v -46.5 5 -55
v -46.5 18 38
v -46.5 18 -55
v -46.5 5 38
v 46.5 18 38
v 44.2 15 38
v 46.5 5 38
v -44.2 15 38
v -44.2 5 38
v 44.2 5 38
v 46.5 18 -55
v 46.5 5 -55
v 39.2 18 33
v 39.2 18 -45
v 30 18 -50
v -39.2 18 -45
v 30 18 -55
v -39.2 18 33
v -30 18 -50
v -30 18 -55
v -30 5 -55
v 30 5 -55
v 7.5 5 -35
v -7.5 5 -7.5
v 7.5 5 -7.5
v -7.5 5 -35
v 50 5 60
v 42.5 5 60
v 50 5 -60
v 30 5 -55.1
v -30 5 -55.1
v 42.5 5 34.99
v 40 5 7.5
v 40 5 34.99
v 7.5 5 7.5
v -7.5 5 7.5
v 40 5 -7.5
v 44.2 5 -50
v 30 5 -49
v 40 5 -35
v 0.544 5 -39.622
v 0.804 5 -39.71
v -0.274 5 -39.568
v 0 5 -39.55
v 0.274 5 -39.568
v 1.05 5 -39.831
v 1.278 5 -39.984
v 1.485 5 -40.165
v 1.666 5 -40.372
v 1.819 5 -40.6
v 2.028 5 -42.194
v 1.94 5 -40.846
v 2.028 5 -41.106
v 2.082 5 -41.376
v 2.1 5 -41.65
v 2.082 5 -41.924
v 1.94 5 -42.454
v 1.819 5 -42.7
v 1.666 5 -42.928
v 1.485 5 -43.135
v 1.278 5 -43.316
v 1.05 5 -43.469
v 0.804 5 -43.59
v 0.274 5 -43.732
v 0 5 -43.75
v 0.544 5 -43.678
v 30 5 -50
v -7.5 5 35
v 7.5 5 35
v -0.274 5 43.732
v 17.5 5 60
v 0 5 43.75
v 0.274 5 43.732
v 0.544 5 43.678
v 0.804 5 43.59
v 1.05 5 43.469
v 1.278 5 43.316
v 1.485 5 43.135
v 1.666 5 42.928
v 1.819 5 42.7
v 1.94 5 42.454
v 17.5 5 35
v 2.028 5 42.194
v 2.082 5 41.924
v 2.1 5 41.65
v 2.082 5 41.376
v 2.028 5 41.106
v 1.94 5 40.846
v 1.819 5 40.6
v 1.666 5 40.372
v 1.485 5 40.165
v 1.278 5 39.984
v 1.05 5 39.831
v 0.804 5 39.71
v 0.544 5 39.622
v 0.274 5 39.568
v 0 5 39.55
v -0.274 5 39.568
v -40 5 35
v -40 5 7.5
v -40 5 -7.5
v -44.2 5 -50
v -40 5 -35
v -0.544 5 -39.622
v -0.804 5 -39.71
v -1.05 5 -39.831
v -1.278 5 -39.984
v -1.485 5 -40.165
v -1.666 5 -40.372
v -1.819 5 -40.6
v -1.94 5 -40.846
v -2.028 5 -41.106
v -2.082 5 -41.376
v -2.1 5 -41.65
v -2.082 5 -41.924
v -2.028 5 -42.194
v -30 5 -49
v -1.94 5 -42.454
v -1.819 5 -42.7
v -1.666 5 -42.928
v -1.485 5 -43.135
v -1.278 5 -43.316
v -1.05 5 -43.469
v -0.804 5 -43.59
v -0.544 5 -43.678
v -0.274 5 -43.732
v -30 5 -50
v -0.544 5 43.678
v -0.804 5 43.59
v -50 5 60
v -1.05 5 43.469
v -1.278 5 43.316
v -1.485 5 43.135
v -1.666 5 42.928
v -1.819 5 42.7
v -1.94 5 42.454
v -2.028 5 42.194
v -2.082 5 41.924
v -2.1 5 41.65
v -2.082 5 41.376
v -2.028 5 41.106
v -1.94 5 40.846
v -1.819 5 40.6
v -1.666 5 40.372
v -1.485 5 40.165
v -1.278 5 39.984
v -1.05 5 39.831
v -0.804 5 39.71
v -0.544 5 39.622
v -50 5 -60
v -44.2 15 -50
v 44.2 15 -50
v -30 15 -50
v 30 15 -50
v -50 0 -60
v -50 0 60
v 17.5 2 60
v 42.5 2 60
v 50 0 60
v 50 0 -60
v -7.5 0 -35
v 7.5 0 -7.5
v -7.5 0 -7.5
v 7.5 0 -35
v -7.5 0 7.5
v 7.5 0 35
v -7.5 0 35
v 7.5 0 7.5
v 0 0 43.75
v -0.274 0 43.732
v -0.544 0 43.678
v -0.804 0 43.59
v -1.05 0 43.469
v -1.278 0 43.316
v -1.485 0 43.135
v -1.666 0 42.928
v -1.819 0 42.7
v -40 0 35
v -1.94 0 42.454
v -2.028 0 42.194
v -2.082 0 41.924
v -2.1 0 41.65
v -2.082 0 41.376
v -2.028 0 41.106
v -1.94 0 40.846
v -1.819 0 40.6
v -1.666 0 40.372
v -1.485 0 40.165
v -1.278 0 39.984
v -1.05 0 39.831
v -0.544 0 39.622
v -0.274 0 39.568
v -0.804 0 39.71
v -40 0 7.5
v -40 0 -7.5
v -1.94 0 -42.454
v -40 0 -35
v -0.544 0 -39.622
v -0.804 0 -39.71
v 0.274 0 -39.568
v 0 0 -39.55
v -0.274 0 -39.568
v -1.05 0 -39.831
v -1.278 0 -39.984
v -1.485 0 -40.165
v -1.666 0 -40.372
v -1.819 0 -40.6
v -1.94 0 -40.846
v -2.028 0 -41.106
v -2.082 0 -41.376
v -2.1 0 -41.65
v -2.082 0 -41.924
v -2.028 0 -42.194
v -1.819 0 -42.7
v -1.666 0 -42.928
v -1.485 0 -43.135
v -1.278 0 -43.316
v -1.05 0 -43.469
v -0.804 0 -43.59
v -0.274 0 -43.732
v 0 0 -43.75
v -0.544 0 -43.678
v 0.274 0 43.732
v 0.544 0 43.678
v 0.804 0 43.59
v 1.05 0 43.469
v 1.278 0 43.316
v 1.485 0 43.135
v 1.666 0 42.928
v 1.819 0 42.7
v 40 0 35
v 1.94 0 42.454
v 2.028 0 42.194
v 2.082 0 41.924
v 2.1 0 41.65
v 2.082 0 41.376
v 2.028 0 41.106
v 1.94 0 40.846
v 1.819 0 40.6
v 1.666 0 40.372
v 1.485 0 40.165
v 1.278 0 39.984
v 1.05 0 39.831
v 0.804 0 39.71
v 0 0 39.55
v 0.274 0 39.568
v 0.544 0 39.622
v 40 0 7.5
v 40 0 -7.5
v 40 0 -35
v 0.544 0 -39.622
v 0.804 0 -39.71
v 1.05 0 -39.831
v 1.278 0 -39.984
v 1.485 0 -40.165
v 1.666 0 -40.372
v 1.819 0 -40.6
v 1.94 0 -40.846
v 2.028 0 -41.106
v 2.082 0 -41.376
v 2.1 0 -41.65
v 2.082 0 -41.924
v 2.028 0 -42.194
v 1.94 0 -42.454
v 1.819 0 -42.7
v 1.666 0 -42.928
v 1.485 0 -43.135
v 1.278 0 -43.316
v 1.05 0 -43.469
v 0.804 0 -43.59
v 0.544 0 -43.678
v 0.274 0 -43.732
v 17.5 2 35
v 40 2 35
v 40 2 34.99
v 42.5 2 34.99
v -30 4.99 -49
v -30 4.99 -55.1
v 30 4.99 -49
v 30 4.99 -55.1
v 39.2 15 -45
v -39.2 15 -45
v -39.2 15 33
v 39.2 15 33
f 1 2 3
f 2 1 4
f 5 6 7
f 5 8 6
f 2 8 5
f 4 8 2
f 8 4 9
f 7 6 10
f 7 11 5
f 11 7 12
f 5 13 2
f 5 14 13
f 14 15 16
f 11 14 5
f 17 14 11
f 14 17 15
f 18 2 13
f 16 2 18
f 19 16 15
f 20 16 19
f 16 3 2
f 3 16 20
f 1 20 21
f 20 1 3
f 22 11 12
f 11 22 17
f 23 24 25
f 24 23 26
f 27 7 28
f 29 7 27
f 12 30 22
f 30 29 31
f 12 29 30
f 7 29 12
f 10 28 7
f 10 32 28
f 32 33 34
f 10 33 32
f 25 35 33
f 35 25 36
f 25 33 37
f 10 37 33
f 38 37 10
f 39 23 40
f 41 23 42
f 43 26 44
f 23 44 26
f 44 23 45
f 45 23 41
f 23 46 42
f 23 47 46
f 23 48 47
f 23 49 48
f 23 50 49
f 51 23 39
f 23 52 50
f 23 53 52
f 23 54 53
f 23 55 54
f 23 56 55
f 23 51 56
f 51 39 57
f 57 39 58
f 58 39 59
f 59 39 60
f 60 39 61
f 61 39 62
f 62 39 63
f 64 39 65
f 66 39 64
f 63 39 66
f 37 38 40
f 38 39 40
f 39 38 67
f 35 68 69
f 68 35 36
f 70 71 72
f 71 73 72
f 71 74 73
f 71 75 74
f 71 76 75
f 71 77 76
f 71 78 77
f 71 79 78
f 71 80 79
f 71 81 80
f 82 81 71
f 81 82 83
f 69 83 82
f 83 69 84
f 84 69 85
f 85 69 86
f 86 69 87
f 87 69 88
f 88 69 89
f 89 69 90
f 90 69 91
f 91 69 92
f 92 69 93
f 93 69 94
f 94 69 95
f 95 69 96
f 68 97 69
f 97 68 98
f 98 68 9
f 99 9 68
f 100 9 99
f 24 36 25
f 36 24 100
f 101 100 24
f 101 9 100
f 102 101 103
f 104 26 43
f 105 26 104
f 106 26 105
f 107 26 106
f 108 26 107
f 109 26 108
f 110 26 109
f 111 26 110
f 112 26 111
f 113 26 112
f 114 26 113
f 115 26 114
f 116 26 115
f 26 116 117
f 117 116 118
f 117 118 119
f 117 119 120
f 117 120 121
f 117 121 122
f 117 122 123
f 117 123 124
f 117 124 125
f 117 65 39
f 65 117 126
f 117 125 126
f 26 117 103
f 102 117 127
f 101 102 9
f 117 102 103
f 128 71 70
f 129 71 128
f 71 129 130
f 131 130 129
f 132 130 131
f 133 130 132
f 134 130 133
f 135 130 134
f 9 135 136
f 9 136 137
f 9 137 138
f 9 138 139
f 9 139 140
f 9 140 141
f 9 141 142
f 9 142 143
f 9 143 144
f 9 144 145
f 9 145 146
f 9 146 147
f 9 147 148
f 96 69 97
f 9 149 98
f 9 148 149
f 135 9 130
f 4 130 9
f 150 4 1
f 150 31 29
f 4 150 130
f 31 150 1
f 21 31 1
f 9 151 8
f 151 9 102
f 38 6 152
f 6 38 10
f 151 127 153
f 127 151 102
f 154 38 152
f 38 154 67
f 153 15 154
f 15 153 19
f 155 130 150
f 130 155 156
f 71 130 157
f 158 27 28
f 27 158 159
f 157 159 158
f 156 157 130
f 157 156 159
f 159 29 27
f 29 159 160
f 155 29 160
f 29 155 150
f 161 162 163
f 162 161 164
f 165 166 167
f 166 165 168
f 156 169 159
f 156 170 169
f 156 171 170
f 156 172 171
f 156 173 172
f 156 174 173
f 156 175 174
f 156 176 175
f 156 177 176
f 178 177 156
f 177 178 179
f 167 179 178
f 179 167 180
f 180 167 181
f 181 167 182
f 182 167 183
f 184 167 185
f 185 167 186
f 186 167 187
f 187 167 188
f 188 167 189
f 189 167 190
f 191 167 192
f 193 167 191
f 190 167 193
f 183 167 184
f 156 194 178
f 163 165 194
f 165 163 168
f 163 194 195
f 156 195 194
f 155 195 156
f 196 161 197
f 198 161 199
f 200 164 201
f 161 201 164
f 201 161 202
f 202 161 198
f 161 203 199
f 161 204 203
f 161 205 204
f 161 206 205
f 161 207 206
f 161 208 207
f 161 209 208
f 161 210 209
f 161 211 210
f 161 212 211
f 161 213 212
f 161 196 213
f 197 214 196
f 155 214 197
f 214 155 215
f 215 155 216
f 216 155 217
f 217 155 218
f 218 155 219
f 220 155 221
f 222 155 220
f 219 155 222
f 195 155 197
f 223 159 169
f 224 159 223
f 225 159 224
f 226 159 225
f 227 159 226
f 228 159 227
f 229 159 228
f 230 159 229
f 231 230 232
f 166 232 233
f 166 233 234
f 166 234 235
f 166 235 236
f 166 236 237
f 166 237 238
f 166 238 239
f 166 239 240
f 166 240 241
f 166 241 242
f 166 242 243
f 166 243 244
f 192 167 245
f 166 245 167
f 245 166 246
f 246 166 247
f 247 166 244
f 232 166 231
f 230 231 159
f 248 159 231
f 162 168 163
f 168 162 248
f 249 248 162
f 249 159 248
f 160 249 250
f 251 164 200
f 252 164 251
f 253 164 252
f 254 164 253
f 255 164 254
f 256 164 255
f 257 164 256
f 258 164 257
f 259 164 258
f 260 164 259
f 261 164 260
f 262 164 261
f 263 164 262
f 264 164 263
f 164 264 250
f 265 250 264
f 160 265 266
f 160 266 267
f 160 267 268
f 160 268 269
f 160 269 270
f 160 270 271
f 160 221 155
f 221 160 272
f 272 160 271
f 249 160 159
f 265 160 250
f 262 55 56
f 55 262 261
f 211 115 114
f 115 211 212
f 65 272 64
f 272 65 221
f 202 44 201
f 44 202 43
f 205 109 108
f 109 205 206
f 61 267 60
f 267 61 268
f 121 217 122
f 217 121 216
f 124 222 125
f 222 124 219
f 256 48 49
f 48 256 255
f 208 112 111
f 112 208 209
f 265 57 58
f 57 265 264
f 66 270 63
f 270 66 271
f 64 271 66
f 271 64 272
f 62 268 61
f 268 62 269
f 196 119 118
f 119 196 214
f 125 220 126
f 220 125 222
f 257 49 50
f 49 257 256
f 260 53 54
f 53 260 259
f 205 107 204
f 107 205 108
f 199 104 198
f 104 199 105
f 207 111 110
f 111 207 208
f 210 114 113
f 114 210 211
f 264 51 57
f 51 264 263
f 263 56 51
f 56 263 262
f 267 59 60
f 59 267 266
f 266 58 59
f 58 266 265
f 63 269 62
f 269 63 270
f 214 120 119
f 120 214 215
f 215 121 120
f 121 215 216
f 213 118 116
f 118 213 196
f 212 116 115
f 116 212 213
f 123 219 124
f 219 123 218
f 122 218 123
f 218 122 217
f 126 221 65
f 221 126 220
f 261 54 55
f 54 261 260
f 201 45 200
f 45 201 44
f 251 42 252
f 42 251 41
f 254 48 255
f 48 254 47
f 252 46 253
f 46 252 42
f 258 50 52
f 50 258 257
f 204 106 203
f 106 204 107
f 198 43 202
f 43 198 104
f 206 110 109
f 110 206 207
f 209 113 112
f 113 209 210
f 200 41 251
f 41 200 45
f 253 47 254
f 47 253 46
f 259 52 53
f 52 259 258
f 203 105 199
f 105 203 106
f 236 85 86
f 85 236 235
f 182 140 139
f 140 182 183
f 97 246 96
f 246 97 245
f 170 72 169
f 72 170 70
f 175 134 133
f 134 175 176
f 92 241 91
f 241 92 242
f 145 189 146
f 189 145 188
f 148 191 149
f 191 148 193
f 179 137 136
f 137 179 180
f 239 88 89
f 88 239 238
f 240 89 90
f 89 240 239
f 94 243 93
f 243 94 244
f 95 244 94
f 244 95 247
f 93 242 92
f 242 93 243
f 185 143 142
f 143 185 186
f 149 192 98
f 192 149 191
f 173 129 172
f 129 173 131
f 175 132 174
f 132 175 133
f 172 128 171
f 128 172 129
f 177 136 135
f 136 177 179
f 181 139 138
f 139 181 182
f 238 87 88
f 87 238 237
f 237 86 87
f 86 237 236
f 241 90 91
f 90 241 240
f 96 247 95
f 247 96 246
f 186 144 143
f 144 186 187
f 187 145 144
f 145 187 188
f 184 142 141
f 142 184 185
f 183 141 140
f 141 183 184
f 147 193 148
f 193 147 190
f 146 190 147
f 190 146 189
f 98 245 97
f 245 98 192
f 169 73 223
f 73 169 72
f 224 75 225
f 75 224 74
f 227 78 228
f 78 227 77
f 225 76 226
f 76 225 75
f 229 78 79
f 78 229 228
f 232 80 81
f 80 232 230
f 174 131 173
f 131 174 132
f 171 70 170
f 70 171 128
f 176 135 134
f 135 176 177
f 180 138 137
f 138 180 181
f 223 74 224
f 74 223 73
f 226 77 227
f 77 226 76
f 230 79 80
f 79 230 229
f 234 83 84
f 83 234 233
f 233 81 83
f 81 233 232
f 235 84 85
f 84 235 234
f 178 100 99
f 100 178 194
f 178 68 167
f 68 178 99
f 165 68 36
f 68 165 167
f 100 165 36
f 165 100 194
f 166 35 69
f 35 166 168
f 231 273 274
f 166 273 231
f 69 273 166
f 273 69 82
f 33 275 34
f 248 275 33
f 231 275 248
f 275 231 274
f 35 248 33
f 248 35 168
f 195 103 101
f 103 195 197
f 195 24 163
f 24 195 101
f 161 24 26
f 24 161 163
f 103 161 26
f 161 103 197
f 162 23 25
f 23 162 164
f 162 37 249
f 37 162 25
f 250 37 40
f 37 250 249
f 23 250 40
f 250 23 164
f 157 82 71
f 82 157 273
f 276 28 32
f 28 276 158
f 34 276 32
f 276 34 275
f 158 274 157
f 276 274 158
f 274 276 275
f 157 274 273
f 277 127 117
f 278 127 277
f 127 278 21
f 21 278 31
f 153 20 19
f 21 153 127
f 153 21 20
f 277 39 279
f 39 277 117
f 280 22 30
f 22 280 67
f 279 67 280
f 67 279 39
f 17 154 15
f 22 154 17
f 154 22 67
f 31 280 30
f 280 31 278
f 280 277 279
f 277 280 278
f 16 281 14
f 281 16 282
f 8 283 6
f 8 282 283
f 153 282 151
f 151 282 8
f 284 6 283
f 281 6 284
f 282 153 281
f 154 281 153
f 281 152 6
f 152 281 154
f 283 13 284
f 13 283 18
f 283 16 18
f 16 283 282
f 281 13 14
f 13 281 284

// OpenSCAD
// =============================================================
// Wall-plate + slide-in cradle for Guition ESP32-S3-4848S040
// -------------------------------------------------------------
// Single printed part:
//   - 100 x 120 wall plate, mounts to a US single-gang box
//     via 2 screws at 83.3 mm vertical spacing (gang box at the
//     plate's vertical center; extra height is above the cradle).
//   - 93 x 93 cradle rising 13 mm forward, aligned with the BOTTOM
//     edge of the plate (plate extends upward above the cradle).
//     Cavity 88 x 88 x 13. Front has a 4-sided 5 mm retention frame
//     (bottom + top bars, left/right posts) that drops into the
//     device's 5 mm front notch. Device installs by tilting it in
//     from the front.
//   - 50 x 60 wire passthrough straight through the plate center.
//
// Material: PETG. 0.2 mm layer, 30% infill, 4 perimeters.
// Orient:   wall plate flat on the bed, cradle rising up.
// =============================================================

// ---------- DEVICE ----------
device_w       = 88;
device_h       = 88;
device_d       = 13;
clearance      = 0.4;

// ---------- WALL PLATE ----------
plate_w        = 100;
plate_h        = 120;
plate_t        = 5;

// ---------- CRADLE ----------
cradle_outer_w = 93;
cradle_outer_h = 93;
cradle_depth   = 13;
wall_bottom_t  = 5;   // bottom lip the device rests on

// ---------- FRONT RETENTION LIP ----------
// The device has a 5 mm-wide notch around its entire front perimeter.
// The cradle has a matching 5 mm-wide frame on all 4 sides (bottom,
// top, left, right) that drops into that notch.
front_lip_w    = 5;   // inward projection (matches 5 mm notch width)
front_lip_t    = 3;   // Y thickness at the front face

// ---------- WIRE PASSTHROUGH (through the plate) ----------
wire_hole_w    = 80;
wire_hole_h    = 70;

// ---------- GANG-BOX SCREWS ----------
box_hole_spacing = 83.3;
box_hole_d       = 4.2;  // #6-32 clearance

// ---------- 8-PIN CONNECTOR SLIDE-IN CHANNEL ----------
// Vertical groove on the cradle-facing side of the wall plate so the
// device's 3 mm-raised 8-pin header can slide down from the top into
// its seated position. Runs from above the wire hole up through the
// top edge of the plate. Adjust conn_chan_x to match the connector.
conn_chan_w      = 25;   // X width of the channel
conn_chan_depth  = 3;    // Y recess into plate (matches header height)
conn_chan_x      = 30;   // X center (upper-RIGHT front view = X > 0)

// ---------- BOTTOM SLOT (USB-C + SD card) ----------
// Wide opening through the cradle's bottom lip so the USB-C port and
// microSD slot on the device's bottom edge are reachable. Cuts the full
// Y depth and full Z thickness of the lip; the device still rests on
// the remaining lip on each side of the slot.
bottom_slot_w    = 60;

// ---------- CENTER SPINES ----------
// 15 mm-wide uncut strips of plate material forming a cross through
// the wire passthrough: one vertical (aligned with the screw
// centerline), one horizontal. Not separate ribs — they are the
// portions of the plate the wire hole does NOT cut away. The wire
// passthrough is split into four quadrants around them.
spine_w          = 15;

$fn = 48;

// ---------- DERIVED ----------
cavity_w = device_w + clearance;
cavity_h = device_h + clearance;

// Z offset for the cradle relative to the plate. Starts from the
// cradle's outer bottom aligned with the plate's outer bottom, then
// shifted up 5 mm so the cradle sits slightly above the plate's
// bottom edge. For plate_h = 120 and cradle_outer_h = 93, this is
// -13.5 + 5 = -8.5 mm.
cradle_lift = 5;
cradle_z    = -(plate_h - cradle_outer_h) / 2 + cradle_lift;

// ---------- BUILD ----------

union() {
    // Plate + hollow cradle shell, with all plate-side subtractions.
    // The retention lip is added AFTER this block so the bottom slot
    // can extend generously in Y and Z without creating coincident
    // planes with the lip.
    difference() {
        union() {
            // Wall plate
            translate([-plate_w/2, 0, -plate_h/2])
                cube([plate_w, plate_t, plate_h]);

            // Cradle: hollow shell (open top + open front).
            difference() {
                translate([-cradle_outer_w/2, plate_t, cradle_z - cradle_outer_h/2])
                    cube([cradle_outer_w, cradle_depth, cradle_outer_h]);

                // Full cavity: open top, open front
                translate([-cavity_w/2,
                           plate_t - 0.01,
                           cradle_z - cradle_outer_h/2 + wall_bottom_t])
                    cube([cavity_w,
                          cradle_depth + 0.02,
                          cavity_h + 20]);
            }
        }

        // Wire passthrough: split into four quadrants separated by a
        // cross of 15 mm-wide plate strips (vertical on the screw
        // centerline, horizontal at the plate vertical center).
        wire_half_w = (wire_hole_w - spine_w) / 2;
        wire_half_h = (wire_hole_h - spine_w) / 2;
        translate([-wire_hole_w/2, -0.1,  spine_w/2])
            cube([wire_half_w, plate_t + 0.2, wire_half_h]);  // upper-left
        translate([ spine_w/2,    -0.1,  spine_w/2])
            cube([wire_half_w, plate_t + 0.2, wire_half_h]);  // upper-right
        translate([-wire_hole_w/2, -0.1, -wire_hole_h/2])
            cube([wire_half_w, plate_t + 0.2, wire_half_h]);  // lower-left
        translate([ spine_w/2,    -0.1, -wire_hole_h/2])
            cube([wire_half_w, plate_t + 0.2, wire_half_h]);  // lower-right

        // 8-pin connector slide-in channel (cradle-facing side, upper portion)
        translate([conn_chan_x - conn_chan_w/2,
                   plate_t - conn_chan_depth,
                   wire_hole_h/2 - 0.01])
            cube([conn_chan_w,
                  conn_chan_depth + 0.02,
                  plate_h/2 - wire_hole_h/2 + 1]);

        // Bottom slot (USB-C + SD card) through the cradle's bottom lip.
        // Full Y depth of the cradle; Z extends 1 mm up into the cavity
        // so there's no coincident plane with the retention lip (added
        // back as a separate solid below).
        translate([-bottom_slot_w/2,
                   plate_t - 0.01,
                   cradle_z - cradle_outer_h/2 - 0.1])
            cube([bottom_slot_w,
                  cradle_depth + 0.02,
                  wall_bottom_t + 1.1]);

        // US single-gang box screws (vertical centerline)
        for (sz = [-1, 1])
            translate([0, -0.1, sz * box_hole_spacing / 2])
                rotate([-90, 0, 0])
                    cylinder(h = plate_t + 0.2, d = box_hole_d);
    }

    // Retention frame at the front face: 4-sided 5 mm-wide border that
    // drops into the device's front notch (bottom bar + top bar +
    // left/right posts). Added AFTER the plate-side subtractions so
    // the bars keep their full cross-section through the bottom slot.
    // NOTE: with the top bar in place the device can no longer slide in
    // through the top — installation requires tilting the device in
    // from the front.
    translate([-cavity_w/2,
               plate_t + cradle_depth - front_lip_t,
               cradle_z - cradle_outer_h/2 + wall_bottom_t])
        cube([cavity_w, front_lip_t, front_lip_w]);           // bottom bar

    translate([-cavity_w/2,
               plate_t + cradle_depth - front_lip_t,
               cradle_z + cradle_outer_h/2 - front_lip_w])
        cube([cavity_w, front_lip_t, front_lip_w]);           // top bar

    translate([-cavity_w/2,
               plate_t + cradle_depth - front_lip_t,
               cradle_z - cradle_outer_h/2 + wall_bottom_t])
        cube([front_lip_w, front_lip_t,
              cradle_outer_h - wall_bottom_t]);               // left post

    translate([cavity_w/2 - front_lip_w,
               plate_t + cradle_depth - front_lip_t,
               cradle_z - cradle_outer_h/2 + wall_bottom_t])
        cube([front_lip_w, front_lip_t,
              cradle_outer_h - wall_bottom_t]);               // right post
}
